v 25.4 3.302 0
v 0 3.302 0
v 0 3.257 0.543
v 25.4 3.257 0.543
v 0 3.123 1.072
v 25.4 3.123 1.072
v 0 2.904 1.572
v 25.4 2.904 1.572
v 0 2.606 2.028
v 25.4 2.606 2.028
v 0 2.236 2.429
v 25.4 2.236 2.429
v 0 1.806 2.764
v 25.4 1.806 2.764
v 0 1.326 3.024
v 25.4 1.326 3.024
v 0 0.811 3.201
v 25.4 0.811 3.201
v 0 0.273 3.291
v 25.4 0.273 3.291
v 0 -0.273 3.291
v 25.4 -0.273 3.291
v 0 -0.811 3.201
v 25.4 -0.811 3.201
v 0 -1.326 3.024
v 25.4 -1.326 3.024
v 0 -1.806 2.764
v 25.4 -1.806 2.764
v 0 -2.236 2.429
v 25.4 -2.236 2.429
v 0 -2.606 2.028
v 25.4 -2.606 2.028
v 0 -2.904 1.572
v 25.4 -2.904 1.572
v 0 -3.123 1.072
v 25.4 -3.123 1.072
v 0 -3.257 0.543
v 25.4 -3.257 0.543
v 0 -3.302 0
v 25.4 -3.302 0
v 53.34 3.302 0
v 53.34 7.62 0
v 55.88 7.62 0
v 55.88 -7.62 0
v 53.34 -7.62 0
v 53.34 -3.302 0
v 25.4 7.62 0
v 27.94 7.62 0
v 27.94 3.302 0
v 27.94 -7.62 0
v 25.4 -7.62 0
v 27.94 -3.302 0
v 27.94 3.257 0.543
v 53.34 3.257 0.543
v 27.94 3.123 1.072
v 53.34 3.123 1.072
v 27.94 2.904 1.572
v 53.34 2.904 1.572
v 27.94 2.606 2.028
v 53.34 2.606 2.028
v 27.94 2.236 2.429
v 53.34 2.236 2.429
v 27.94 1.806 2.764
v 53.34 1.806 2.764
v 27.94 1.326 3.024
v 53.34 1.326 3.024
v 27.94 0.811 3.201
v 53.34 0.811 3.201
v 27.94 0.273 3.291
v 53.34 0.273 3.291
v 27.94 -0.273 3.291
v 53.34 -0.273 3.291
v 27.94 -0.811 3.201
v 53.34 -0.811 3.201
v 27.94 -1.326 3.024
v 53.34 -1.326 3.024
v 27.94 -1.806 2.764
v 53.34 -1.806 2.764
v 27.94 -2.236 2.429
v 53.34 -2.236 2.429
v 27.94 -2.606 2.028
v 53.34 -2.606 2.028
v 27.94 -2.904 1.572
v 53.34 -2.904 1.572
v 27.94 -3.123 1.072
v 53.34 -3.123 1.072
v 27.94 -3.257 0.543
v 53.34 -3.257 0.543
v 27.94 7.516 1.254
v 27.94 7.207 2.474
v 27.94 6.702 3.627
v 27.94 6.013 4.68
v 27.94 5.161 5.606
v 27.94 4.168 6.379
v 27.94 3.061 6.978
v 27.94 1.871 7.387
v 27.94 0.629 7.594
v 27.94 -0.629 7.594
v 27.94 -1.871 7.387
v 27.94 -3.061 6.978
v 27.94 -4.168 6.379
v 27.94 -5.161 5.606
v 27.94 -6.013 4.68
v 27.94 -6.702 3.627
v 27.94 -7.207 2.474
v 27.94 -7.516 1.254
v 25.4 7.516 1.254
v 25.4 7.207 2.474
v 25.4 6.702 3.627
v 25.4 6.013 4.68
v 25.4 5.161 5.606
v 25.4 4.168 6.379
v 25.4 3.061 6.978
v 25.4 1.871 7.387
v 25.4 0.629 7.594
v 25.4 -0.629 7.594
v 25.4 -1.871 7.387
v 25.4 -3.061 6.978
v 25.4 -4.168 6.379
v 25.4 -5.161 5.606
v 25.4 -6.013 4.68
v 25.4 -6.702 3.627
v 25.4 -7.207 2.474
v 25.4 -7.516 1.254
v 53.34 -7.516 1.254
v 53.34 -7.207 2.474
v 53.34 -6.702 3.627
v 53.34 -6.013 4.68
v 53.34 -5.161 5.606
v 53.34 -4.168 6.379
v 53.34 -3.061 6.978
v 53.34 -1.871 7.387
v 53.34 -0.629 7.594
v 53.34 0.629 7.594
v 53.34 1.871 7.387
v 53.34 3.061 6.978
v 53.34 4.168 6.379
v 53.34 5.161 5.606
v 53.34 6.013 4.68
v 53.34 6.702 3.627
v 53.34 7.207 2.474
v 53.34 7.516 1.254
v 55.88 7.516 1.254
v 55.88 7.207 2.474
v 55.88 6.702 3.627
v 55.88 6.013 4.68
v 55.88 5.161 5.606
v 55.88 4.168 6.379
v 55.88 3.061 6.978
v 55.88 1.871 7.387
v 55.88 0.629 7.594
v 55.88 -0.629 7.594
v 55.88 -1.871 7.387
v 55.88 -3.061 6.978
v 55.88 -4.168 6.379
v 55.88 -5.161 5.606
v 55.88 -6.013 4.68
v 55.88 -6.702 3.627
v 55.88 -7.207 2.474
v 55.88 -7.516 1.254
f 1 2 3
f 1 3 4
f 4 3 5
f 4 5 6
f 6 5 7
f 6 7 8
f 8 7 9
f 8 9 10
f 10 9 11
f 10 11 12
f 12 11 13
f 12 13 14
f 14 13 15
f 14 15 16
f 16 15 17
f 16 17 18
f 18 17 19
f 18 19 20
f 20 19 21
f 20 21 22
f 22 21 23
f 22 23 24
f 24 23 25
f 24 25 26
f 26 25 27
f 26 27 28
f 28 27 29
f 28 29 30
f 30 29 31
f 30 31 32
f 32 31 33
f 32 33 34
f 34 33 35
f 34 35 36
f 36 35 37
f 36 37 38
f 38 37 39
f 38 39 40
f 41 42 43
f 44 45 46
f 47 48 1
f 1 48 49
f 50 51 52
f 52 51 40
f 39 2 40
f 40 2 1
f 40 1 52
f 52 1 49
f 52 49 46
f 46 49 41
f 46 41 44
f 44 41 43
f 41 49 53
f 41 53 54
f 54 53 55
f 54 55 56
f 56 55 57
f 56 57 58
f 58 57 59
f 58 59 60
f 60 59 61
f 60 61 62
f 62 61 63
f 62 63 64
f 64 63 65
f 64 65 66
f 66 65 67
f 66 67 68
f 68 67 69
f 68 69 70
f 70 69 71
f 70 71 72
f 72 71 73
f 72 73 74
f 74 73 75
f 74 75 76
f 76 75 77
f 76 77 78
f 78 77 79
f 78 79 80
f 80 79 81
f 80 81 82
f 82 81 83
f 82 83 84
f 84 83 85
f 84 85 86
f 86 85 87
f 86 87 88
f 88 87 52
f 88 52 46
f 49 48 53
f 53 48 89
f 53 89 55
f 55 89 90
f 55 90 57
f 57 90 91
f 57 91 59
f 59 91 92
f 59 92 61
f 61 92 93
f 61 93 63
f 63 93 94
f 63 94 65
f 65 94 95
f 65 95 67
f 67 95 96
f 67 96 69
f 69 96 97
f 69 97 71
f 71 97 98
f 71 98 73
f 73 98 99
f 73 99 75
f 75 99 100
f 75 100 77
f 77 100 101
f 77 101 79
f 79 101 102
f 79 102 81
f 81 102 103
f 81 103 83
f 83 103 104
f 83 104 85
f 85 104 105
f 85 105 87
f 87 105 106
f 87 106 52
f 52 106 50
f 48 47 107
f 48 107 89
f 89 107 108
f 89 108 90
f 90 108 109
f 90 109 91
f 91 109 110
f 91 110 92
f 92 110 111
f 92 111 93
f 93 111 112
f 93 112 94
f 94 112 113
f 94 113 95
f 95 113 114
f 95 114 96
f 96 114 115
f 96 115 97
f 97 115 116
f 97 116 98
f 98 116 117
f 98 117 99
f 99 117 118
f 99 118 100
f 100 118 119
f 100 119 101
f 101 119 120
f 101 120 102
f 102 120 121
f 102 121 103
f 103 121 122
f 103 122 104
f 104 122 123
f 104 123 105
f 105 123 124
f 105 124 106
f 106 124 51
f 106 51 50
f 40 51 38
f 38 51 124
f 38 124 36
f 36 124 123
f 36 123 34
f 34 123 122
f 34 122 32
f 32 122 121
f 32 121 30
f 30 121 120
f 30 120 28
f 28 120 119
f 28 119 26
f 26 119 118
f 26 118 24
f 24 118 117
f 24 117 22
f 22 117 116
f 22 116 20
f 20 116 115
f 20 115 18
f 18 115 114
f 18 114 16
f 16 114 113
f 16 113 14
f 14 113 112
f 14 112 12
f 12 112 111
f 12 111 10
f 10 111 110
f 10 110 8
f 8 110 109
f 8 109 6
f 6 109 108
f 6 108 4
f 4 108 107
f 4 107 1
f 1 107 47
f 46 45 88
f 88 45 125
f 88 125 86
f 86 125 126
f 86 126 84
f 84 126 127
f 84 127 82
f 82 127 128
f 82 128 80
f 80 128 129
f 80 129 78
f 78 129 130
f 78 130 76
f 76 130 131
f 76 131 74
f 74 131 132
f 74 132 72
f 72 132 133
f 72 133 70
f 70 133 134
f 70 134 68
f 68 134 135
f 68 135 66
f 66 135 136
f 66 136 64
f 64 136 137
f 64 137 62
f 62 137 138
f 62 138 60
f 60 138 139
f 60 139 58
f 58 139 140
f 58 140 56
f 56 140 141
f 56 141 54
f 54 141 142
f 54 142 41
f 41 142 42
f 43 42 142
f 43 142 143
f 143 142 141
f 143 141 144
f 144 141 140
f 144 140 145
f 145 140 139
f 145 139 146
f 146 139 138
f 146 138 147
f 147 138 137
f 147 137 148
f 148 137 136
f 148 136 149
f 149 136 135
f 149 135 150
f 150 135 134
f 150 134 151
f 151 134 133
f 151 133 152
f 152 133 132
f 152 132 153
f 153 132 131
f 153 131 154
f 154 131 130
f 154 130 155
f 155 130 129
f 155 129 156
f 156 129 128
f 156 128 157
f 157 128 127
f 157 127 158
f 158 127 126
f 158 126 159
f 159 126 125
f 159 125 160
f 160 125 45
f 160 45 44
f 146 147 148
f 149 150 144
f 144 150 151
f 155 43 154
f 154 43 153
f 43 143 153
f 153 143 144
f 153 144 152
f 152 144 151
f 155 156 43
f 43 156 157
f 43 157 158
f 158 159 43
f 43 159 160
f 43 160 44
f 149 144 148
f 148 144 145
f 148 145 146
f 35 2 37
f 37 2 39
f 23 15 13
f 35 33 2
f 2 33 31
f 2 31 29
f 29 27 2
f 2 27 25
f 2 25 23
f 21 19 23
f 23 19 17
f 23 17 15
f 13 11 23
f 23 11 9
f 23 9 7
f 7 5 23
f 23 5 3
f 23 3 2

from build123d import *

# Parameters (mm, degrees)
SKETCH1_W               = 111.76
SKETCH1_H               = 3.302
SKETCH6_W               = 2.54
SKETCH6_H               = 4.318
CUT_EXTRUDE1_DEPTH      = 57.909605516
CUT_EXTRUDE1_DEPTH_BACK = 57.909605516
SKETCH7_W               = 7.62
SKETCH7_H               = 15.24
SKETCH8_W               = 55.88
SKETCH8_H               = 15.24
CUT_EXTRUDE2_DEPTH      = 57.909605516


with BuildPart() as part:
    # Sketch1 → Revolve1 (revolve)
    with BuildSketch(Plane.XY, mode=Mode.PRIVATE) as revolve1_sk:
        with Locations((0, 1.651)):
            Rectangle(SKETCH1_W, SKETCH1_H)
    revolve(revolve1_sk.sketch.rotate(Axis((-55.88, 0, 0), (1, 0, 0)), 90), axis=Axis((-55.88, 0, 0), (1, 0, 0)))

    # Sketch6 → Revolve2 (revolve)
    with BuildSketch(Plane.XY, mode=Mode.PRIVATE) as revolve2_sk:
        with Locations((-26.67, 5.461)):
            Rectangle(SKETCH6_W, SKETCH6_H)
        with Locations((26.67, 5.461)):
            Rectangle(SKETCH6_W, SKETCH6_H)
        with Locations((-54.61, 5.461)):
            Rectangle(SKETCH6_W, SKETCH6_H)
        with Locations((54.61, 5.461)):
            Rectangle(SKETCH6_W, SKETCH6_H)
    revolve(revolve2_sk.sketch.rotate(Axis((-31.878421892, 0, 0), (1, 0, 0)), 90), axis=Axis((-31.878421892, 0, 0), (1, 0, 0)))

    # Sketch7 → Cut-Extrude1 (cut, two sides: drawn at the far end of the back side and taken through both)
    with BuildSketch(Plane(origin=(0, 0, 0), x_dir=(0, 0, -1), z_dir=(1, 0, 0)).offset(-CUT_EXTRUDE1_DEPTH_BACK)):
        with Locations((3.81, 0)):
            Rectangle(SKETCH7_W, SKETCH7_H)
    extrude(amount=CUT_EXTRUDE1_DEPTH + CUT_EXTRUDE1_DEPTH_BACK, mode=Mode.SUBTRACT)

    # Sketch8 → Cut-Extrude2 (cut, through all)
    with BuildSketch(Plane.XY):
        with Locations((-27.94, 0)):
            Rectangle(SKETCH8_W, SKETCH8_H)
    extrude(amount=CUT_EXTRUDE2_DEPTH, mode=Mode.SUBTRACT)


solid = part.part
